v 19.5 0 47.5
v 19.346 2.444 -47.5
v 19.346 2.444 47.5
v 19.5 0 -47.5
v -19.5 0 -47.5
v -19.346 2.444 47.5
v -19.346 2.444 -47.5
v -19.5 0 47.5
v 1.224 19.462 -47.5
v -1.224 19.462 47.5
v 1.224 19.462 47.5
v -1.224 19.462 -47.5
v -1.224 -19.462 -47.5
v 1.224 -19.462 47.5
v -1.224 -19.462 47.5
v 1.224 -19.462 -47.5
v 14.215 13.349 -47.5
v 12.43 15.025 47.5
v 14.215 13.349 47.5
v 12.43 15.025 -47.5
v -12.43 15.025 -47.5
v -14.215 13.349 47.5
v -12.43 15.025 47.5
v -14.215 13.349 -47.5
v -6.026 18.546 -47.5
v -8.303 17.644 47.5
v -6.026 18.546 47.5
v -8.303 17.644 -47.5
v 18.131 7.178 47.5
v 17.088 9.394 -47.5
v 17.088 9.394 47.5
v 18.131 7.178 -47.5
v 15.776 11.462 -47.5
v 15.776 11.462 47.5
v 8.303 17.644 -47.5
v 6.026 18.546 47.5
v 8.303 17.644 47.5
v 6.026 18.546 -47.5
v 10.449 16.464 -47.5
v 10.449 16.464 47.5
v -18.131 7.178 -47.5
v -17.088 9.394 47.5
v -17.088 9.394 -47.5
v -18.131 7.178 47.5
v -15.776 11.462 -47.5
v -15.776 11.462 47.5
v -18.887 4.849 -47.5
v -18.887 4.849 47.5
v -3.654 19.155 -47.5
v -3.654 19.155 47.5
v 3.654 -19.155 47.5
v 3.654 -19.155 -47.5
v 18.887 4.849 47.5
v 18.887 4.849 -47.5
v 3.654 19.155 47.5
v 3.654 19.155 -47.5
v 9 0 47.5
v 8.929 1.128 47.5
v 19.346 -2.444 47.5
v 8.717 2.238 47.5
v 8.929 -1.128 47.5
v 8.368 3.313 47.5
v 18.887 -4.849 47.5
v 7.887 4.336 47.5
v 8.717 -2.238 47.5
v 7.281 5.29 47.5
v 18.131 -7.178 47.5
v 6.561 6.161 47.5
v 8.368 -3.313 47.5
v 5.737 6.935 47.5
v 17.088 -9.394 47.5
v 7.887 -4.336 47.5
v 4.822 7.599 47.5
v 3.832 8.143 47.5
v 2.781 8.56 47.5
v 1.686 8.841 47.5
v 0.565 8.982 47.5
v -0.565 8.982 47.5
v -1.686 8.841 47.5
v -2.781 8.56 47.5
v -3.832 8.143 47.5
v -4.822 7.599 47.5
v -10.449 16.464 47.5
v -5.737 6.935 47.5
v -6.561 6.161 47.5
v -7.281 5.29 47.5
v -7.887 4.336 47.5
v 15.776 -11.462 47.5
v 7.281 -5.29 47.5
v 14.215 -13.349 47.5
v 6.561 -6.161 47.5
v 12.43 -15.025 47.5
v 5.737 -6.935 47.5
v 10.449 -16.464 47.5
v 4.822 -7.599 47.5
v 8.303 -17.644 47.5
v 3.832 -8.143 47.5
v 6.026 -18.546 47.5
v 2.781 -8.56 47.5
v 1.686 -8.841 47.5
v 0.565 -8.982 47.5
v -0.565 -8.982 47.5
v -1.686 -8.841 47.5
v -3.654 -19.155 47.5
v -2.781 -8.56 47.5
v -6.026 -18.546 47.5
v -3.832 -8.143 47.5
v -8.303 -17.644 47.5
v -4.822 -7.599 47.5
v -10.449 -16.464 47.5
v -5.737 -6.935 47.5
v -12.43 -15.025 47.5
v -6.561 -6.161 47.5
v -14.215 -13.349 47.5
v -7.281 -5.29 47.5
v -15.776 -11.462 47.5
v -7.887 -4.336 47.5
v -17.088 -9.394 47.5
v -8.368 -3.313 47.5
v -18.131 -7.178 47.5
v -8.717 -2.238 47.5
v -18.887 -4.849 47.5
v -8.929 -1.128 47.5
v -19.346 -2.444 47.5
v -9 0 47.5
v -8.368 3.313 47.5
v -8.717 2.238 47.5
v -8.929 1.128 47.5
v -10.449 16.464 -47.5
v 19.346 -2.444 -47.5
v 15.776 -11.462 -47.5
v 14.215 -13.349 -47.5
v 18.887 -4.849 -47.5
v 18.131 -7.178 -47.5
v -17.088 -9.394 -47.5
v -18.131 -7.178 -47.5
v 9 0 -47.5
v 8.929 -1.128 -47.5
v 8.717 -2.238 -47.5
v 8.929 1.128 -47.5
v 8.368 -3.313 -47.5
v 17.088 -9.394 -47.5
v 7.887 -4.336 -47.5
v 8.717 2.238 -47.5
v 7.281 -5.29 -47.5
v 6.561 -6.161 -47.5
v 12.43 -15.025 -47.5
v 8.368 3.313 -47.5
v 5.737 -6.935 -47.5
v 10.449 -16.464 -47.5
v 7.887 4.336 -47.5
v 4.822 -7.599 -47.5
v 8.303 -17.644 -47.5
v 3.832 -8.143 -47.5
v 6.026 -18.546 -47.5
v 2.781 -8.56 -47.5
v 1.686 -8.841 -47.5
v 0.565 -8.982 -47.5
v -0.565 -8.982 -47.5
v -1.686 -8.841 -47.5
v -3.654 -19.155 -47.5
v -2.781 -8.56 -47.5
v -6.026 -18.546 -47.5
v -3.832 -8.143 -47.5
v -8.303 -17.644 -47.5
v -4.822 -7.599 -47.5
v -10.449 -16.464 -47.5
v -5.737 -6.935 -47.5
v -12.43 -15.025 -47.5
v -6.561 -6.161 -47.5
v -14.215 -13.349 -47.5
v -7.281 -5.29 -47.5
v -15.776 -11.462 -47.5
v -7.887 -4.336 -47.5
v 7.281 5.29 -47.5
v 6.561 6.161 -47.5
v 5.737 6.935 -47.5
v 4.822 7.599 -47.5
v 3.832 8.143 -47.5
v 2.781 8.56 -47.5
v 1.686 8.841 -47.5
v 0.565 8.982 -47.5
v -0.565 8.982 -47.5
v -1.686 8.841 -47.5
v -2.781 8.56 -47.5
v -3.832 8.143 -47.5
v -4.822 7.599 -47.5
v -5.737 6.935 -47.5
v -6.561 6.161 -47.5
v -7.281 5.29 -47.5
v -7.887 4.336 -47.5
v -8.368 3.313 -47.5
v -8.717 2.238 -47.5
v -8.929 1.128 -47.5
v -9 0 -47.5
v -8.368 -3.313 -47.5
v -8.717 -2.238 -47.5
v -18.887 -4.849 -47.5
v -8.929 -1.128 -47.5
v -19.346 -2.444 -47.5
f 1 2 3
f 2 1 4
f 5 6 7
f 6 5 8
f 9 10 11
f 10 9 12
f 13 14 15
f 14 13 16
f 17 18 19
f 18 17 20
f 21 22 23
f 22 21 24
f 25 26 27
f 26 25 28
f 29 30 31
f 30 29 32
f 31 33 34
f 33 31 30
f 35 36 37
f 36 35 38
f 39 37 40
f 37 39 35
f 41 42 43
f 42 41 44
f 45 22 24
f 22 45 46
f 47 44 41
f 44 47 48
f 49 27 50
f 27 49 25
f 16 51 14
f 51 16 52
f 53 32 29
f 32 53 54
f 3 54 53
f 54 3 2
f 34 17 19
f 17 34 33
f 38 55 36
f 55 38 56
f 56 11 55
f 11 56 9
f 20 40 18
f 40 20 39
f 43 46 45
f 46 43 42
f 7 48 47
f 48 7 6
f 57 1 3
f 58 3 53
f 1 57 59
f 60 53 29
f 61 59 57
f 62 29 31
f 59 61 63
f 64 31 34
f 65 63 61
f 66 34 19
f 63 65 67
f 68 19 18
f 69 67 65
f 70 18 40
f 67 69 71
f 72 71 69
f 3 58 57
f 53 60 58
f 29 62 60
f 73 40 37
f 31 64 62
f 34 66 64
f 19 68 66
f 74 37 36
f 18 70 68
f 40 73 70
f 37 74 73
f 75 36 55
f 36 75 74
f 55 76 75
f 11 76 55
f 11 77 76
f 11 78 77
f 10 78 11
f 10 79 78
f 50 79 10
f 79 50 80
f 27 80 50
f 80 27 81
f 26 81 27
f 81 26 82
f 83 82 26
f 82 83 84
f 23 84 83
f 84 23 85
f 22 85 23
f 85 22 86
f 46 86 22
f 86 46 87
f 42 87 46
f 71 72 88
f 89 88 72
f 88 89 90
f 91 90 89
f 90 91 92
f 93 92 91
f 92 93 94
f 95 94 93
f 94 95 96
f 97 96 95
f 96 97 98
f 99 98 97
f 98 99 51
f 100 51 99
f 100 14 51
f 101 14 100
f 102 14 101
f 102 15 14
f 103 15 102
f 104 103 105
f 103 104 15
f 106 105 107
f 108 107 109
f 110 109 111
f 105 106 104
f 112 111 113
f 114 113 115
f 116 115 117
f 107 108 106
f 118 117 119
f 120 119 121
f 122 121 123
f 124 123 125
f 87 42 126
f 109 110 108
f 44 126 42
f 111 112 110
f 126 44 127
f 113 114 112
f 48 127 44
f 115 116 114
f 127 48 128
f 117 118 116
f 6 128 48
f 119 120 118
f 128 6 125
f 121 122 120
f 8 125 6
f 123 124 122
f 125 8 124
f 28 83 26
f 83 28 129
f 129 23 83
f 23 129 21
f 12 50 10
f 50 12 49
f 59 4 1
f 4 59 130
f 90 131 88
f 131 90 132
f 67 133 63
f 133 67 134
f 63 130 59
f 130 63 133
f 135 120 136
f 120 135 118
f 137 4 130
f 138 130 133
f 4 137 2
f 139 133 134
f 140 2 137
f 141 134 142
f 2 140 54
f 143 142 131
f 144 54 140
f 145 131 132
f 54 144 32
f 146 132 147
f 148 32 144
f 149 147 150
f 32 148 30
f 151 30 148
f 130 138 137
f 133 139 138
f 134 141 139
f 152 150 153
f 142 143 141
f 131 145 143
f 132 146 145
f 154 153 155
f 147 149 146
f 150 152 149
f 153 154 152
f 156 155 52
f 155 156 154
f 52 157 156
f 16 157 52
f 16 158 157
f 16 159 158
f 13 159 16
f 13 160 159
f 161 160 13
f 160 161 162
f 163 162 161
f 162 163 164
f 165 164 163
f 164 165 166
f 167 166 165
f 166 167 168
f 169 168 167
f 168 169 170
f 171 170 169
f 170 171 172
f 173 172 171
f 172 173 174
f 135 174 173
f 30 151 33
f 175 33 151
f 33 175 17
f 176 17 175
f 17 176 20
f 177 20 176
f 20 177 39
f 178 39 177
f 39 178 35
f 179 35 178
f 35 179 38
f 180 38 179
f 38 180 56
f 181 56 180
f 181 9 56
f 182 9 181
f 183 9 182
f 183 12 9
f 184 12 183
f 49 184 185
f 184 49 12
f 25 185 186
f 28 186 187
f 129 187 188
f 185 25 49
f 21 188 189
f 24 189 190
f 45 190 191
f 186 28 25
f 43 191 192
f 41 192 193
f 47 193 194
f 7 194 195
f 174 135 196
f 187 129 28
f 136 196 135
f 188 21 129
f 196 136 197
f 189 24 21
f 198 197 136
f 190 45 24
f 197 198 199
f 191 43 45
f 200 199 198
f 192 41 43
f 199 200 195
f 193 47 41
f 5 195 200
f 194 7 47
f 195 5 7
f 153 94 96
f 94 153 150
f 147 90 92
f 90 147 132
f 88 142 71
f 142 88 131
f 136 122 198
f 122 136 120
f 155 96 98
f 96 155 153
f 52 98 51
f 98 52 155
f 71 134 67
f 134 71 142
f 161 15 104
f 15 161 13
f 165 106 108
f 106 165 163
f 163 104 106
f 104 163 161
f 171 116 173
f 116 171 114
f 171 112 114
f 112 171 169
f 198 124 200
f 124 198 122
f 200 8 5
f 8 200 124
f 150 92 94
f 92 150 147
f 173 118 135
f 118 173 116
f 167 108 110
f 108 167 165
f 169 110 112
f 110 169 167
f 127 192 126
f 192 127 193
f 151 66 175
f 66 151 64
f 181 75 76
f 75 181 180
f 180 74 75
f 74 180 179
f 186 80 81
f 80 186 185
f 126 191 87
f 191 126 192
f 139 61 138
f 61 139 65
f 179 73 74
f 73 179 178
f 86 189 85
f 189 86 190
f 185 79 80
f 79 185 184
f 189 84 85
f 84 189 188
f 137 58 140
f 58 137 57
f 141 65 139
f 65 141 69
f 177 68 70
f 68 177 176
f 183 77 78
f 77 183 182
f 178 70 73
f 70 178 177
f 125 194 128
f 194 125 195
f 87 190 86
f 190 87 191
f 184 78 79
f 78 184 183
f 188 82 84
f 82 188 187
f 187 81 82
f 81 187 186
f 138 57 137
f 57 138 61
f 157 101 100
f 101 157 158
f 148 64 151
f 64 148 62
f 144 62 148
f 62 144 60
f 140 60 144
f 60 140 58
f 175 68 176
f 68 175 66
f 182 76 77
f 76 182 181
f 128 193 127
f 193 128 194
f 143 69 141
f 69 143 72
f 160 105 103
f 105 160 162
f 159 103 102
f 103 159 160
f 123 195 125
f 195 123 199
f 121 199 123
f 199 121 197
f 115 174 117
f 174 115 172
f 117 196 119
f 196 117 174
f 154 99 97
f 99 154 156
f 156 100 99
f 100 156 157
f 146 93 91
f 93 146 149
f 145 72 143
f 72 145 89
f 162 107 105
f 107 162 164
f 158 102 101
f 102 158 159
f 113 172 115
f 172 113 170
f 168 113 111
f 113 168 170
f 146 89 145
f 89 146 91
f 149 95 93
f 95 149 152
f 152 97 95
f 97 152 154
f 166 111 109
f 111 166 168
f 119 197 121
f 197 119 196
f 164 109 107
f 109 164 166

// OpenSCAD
$fn = 50;


difference() {
	union() {
		translate(v = [0, 0, -47.5000000000]) {
			cylinder(h = 95, r = 19.5000000000);
		}
	}
	union() {
		translate(v = [0, 0, -100.0000000000]) {
			cylinder(h = 200, r = 9);
		}
	}
}
